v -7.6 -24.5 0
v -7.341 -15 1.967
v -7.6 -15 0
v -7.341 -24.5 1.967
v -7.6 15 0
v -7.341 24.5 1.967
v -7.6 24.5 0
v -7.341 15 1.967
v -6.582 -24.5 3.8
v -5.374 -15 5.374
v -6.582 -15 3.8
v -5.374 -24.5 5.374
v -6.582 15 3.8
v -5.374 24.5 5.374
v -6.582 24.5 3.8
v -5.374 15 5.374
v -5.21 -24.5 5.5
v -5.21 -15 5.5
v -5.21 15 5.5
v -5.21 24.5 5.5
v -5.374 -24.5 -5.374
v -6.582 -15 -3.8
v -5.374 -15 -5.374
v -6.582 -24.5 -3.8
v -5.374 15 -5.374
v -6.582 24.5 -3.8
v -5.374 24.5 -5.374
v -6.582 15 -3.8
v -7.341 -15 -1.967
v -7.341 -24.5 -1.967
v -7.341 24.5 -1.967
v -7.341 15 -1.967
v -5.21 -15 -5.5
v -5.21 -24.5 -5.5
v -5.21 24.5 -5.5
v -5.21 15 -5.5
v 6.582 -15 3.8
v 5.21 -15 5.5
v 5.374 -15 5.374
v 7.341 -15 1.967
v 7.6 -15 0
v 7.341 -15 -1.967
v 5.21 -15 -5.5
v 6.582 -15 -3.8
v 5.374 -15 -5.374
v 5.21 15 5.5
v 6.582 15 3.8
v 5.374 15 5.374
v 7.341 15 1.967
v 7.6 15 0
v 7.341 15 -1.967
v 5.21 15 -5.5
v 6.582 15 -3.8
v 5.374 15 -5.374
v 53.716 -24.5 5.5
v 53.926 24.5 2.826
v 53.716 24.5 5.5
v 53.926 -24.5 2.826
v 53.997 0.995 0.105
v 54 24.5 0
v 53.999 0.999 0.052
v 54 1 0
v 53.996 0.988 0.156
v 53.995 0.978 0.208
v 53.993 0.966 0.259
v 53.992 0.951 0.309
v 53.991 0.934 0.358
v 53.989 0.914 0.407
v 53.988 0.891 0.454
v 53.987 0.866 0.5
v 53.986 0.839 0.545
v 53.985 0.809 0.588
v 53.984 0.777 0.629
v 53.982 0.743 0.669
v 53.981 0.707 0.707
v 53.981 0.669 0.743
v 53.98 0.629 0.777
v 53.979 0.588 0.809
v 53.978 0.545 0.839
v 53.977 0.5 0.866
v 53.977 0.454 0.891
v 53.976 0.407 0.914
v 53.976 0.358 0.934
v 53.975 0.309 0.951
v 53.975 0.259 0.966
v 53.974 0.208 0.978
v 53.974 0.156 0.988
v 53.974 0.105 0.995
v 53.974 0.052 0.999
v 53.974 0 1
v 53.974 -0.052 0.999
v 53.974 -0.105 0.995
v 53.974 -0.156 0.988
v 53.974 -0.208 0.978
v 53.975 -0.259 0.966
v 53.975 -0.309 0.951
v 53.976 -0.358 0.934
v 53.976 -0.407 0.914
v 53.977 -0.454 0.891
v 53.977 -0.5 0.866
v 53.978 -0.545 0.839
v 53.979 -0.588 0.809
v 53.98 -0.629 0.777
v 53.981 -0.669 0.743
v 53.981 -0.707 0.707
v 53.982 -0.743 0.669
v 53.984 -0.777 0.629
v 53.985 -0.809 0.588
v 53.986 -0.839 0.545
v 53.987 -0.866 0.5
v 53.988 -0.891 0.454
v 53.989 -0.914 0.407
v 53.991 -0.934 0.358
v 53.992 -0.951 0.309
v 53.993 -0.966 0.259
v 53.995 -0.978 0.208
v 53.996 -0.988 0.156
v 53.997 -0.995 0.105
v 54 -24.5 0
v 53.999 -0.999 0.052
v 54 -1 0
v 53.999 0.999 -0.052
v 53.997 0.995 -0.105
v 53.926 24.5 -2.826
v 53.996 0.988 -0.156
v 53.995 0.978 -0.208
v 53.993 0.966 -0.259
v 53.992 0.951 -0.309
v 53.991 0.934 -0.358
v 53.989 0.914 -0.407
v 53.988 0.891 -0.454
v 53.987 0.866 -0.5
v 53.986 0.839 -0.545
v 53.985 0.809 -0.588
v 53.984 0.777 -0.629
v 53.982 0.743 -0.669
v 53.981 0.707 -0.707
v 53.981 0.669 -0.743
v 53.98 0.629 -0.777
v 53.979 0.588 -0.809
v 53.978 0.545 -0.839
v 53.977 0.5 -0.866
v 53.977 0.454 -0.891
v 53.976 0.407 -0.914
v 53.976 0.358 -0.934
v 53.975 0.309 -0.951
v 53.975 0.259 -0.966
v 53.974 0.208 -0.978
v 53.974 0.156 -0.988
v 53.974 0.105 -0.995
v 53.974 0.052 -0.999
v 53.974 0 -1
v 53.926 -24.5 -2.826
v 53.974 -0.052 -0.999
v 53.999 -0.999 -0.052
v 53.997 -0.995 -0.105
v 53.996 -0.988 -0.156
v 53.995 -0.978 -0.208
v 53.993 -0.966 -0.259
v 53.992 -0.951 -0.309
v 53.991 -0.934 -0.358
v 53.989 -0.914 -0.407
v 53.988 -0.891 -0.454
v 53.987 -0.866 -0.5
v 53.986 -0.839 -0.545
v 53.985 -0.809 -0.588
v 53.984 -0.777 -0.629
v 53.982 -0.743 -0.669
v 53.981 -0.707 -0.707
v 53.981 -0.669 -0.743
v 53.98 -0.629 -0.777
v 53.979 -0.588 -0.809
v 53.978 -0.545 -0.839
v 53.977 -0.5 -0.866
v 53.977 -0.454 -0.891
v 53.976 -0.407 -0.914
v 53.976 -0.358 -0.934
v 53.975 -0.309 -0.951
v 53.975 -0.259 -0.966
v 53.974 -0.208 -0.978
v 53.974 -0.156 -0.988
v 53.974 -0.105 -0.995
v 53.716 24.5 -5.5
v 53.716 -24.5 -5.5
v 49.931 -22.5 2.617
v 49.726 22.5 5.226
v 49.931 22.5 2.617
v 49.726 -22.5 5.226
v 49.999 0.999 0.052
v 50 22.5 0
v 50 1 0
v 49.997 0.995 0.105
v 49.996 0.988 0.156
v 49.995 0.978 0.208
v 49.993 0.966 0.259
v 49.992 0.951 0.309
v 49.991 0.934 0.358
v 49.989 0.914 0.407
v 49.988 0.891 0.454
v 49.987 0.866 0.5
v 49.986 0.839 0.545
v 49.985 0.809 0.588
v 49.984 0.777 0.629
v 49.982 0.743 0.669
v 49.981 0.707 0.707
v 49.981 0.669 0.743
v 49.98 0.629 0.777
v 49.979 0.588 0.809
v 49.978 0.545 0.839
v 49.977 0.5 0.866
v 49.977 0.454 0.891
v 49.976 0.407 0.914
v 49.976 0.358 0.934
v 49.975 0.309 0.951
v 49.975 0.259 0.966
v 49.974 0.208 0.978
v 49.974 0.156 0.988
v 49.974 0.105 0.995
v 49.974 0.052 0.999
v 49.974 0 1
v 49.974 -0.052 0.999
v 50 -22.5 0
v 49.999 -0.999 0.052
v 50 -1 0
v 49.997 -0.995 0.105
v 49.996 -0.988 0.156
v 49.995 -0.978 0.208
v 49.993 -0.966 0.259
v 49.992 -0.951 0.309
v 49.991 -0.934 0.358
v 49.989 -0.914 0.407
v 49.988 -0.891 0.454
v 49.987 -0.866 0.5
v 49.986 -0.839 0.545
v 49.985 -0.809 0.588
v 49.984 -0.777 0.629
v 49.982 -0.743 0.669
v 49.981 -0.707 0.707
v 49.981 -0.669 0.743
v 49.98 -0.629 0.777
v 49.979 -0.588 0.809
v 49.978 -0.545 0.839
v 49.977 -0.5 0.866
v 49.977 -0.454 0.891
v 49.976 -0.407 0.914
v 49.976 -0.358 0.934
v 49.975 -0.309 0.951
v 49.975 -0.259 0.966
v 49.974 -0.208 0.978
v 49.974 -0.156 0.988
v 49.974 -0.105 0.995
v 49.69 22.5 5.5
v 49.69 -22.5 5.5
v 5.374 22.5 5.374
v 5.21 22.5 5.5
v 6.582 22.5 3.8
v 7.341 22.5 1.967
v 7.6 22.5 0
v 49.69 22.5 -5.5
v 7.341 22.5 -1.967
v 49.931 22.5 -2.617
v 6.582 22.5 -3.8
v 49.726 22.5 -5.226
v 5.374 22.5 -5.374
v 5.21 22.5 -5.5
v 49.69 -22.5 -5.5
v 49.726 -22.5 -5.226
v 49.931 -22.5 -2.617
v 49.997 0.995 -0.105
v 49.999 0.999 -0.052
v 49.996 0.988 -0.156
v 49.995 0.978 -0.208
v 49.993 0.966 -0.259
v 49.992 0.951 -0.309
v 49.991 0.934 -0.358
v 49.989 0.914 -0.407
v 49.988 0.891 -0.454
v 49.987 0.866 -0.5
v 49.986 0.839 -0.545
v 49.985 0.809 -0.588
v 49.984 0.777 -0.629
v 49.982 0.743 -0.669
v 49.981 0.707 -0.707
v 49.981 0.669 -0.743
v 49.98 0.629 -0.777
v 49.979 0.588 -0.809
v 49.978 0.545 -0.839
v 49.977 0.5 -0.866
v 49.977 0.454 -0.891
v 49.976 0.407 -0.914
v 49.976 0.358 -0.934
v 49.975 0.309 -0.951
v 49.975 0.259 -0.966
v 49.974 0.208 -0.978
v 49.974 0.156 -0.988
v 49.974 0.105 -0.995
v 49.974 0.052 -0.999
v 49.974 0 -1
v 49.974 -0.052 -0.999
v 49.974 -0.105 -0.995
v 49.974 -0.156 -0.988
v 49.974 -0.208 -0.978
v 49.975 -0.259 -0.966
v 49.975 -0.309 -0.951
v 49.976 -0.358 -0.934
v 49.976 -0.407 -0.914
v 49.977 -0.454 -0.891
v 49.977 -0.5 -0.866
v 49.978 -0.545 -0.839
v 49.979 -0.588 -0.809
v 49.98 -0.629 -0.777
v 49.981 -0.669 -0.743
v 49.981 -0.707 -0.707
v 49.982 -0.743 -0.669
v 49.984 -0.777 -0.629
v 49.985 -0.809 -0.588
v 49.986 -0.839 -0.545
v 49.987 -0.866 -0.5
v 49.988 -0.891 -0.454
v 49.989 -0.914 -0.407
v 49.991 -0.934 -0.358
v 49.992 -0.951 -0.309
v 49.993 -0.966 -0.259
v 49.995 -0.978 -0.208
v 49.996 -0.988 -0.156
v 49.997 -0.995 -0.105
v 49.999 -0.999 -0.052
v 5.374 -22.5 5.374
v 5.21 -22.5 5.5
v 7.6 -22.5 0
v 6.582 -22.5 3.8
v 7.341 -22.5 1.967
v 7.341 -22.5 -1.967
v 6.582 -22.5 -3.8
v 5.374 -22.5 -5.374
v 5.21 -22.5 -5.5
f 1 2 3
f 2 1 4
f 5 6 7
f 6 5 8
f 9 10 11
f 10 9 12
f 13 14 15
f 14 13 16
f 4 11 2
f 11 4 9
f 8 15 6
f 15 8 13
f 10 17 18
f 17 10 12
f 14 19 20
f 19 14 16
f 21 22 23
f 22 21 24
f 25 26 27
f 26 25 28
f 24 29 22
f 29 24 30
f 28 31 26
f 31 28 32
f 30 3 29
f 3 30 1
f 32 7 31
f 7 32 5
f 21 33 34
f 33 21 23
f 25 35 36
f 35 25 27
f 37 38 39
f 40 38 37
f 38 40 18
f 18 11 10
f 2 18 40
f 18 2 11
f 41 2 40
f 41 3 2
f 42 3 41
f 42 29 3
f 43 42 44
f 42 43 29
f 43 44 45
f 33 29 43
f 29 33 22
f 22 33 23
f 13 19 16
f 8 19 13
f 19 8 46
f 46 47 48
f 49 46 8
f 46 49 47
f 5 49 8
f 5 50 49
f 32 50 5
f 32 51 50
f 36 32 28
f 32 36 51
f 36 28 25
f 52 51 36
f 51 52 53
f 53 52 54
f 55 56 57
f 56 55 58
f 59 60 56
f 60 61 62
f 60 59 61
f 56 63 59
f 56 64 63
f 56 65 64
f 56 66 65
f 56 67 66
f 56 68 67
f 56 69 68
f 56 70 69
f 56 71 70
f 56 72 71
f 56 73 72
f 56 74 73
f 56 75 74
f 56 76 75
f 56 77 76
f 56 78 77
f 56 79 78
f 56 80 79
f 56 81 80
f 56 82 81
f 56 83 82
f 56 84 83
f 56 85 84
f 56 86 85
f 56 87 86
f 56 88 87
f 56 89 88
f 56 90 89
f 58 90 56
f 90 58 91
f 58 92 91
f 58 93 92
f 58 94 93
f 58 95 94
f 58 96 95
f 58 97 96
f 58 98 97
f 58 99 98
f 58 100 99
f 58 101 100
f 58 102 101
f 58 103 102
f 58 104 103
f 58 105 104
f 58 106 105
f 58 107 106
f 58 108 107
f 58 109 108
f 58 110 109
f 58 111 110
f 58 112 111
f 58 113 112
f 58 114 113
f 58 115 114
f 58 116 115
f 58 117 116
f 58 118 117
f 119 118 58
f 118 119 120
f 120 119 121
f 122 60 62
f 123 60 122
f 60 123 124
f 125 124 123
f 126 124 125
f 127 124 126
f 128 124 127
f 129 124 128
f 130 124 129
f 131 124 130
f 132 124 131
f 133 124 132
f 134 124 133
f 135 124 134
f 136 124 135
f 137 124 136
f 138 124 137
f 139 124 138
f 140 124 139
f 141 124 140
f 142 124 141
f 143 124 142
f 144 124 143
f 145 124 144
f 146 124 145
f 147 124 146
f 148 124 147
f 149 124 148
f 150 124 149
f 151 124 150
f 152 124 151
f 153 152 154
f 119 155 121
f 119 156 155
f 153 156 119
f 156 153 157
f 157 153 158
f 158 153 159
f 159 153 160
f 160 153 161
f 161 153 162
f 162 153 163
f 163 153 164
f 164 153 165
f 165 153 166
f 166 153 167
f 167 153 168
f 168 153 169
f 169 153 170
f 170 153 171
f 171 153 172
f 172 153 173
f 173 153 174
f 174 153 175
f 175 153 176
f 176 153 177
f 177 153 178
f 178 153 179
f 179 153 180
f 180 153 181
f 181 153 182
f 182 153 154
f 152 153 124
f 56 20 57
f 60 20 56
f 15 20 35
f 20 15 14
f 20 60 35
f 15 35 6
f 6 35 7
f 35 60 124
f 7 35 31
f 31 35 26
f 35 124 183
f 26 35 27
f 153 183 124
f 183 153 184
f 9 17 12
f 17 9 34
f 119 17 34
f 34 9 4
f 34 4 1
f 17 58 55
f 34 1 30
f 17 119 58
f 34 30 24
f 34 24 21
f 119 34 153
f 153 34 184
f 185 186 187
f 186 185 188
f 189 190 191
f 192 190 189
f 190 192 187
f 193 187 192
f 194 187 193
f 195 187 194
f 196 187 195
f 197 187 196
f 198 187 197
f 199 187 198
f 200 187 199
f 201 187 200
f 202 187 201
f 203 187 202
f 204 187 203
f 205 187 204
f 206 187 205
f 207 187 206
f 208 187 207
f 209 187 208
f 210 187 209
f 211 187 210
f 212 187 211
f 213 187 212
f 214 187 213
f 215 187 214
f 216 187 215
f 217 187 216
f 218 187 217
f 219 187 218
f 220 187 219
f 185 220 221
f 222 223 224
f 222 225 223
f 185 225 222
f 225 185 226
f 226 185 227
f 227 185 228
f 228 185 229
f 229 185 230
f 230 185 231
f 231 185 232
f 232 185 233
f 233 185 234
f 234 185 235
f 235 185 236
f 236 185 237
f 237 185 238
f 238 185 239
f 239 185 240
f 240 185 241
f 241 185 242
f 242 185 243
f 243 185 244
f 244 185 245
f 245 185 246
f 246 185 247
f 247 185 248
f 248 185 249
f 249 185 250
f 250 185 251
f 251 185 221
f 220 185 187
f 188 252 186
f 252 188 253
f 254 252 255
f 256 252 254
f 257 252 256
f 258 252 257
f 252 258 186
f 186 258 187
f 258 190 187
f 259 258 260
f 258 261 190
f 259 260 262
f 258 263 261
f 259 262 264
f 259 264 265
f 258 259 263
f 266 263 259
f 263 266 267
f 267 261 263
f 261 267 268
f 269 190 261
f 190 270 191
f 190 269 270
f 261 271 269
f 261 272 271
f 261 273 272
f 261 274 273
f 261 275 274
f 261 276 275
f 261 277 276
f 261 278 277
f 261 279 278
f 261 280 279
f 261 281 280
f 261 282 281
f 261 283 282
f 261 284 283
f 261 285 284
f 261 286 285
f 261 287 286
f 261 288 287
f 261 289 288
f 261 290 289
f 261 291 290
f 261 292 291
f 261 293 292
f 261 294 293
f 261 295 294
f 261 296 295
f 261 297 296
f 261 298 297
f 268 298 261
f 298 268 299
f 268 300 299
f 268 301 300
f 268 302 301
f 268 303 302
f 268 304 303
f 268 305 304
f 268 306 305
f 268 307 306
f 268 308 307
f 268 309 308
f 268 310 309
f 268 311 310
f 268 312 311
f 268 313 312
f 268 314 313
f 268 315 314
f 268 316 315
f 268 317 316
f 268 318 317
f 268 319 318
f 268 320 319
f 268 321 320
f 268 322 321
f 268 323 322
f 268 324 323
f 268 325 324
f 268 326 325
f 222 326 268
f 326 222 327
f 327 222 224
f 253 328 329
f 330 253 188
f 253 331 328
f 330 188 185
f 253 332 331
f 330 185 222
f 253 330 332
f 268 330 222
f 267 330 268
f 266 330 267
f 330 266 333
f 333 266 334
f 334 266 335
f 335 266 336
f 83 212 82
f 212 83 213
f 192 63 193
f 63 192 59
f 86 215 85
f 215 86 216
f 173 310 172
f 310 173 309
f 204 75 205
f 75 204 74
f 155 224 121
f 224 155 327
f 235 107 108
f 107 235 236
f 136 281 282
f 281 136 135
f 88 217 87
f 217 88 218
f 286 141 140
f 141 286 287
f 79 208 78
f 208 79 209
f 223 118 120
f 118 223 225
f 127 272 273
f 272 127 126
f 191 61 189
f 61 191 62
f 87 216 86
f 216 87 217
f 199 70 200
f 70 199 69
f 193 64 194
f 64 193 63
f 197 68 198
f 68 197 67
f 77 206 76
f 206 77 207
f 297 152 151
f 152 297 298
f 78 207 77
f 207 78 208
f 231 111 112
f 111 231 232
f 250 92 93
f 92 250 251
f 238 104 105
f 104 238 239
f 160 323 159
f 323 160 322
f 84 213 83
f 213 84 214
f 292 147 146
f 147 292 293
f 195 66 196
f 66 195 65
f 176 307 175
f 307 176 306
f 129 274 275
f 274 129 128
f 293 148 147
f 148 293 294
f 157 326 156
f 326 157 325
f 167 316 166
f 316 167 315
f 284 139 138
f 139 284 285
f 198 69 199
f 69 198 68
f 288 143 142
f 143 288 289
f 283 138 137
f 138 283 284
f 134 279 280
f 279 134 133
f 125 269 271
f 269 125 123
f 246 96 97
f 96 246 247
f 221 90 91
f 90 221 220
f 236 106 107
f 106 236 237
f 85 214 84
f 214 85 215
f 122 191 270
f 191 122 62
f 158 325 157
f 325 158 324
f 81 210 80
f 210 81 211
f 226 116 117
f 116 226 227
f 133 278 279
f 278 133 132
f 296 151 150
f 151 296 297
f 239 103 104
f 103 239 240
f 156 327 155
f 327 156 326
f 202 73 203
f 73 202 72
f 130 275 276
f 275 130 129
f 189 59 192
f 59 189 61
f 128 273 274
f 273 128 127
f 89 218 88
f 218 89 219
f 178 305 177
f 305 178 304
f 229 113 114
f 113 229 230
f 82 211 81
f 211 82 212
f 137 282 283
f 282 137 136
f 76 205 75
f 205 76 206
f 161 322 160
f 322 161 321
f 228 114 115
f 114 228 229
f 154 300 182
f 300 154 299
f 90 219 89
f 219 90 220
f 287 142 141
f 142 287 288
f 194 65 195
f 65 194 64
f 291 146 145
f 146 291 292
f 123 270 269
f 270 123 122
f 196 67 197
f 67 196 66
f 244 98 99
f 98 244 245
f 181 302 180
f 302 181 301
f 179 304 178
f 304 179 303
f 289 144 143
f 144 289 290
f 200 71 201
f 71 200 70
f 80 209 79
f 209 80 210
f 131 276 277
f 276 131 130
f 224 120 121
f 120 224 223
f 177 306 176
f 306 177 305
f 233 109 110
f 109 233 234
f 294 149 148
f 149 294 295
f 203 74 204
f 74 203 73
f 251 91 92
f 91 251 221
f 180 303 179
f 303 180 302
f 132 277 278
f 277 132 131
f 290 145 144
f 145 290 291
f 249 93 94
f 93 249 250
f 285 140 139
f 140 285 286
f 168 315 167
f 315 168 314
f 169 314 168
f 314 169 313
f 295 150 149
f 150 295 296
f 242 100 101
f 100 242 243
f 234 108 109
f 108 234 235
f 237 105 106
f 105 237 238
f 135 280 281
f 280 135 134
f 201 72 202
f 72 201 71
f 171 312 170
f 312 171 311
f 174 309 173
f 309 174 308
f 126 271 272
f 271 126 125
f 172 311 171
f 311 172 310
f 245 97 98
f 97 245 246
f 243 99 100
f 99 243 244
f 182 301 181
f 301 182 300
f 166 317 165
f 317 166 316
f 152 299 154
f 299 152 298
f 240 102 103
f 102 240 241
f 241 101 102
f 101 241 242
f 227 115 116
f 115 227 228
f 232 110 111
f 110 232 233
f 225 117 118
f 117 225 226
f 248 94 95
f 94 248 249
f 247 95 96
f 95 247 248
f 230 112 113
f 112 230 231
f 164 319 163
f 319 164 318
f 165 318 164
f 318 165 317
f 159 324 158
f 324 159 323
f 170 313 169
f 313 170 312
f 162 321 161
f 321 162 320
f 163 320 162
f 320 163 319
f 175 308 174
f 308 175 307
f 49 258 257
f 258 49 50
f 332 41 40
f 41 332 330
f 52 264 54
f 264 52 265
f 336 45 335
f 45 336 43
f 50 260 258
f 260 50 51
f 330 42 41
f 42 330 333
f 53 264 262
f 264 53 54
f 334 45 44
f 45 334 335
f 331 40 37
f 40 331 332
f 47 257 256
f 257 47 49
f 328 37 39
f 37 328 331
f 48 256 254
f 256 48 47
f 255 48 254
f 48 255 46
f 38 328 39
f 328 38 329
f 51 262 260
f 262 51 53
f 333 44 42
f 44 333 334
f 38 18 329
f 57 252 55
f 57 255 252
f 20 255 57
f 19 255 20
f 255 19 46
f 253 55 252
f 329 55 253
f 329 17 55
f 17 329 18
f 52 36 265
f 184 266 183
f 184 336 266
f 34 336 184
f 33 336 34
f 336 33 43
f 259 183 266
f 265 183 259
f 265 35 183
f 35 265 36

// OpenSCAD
eh = 45; // reel height
ed = 100; // reel outer diameter
ei = 15.2; // reel inner diameter - margin

lg = 120;

rotate([90,0,0]) intersection() {
    
    intersection() {
        union() {
            cylinder(d=ei, h=eh, center=true);
            difference() {
                $fn=120;
                cylinder(d=ed+8, h=eh+4, center=true);
                cylinder(d=ed, h=eh, center=true);
                translate([ed/2-1,0,0]) rotate([0,90,0]) cylinder(d=2, h=10);
            }
        }

        cube([lg, 11,lg], center=true);
    }
    
    difference() {
        union() {
            cylinder(d=ei, h=lg, center=true);
            translate([0,-ei/2,-lg/2]) cube([lg,ei,lg]); 
        }
        #cube([ei, ei, 30], center=true);
    }
    
}
